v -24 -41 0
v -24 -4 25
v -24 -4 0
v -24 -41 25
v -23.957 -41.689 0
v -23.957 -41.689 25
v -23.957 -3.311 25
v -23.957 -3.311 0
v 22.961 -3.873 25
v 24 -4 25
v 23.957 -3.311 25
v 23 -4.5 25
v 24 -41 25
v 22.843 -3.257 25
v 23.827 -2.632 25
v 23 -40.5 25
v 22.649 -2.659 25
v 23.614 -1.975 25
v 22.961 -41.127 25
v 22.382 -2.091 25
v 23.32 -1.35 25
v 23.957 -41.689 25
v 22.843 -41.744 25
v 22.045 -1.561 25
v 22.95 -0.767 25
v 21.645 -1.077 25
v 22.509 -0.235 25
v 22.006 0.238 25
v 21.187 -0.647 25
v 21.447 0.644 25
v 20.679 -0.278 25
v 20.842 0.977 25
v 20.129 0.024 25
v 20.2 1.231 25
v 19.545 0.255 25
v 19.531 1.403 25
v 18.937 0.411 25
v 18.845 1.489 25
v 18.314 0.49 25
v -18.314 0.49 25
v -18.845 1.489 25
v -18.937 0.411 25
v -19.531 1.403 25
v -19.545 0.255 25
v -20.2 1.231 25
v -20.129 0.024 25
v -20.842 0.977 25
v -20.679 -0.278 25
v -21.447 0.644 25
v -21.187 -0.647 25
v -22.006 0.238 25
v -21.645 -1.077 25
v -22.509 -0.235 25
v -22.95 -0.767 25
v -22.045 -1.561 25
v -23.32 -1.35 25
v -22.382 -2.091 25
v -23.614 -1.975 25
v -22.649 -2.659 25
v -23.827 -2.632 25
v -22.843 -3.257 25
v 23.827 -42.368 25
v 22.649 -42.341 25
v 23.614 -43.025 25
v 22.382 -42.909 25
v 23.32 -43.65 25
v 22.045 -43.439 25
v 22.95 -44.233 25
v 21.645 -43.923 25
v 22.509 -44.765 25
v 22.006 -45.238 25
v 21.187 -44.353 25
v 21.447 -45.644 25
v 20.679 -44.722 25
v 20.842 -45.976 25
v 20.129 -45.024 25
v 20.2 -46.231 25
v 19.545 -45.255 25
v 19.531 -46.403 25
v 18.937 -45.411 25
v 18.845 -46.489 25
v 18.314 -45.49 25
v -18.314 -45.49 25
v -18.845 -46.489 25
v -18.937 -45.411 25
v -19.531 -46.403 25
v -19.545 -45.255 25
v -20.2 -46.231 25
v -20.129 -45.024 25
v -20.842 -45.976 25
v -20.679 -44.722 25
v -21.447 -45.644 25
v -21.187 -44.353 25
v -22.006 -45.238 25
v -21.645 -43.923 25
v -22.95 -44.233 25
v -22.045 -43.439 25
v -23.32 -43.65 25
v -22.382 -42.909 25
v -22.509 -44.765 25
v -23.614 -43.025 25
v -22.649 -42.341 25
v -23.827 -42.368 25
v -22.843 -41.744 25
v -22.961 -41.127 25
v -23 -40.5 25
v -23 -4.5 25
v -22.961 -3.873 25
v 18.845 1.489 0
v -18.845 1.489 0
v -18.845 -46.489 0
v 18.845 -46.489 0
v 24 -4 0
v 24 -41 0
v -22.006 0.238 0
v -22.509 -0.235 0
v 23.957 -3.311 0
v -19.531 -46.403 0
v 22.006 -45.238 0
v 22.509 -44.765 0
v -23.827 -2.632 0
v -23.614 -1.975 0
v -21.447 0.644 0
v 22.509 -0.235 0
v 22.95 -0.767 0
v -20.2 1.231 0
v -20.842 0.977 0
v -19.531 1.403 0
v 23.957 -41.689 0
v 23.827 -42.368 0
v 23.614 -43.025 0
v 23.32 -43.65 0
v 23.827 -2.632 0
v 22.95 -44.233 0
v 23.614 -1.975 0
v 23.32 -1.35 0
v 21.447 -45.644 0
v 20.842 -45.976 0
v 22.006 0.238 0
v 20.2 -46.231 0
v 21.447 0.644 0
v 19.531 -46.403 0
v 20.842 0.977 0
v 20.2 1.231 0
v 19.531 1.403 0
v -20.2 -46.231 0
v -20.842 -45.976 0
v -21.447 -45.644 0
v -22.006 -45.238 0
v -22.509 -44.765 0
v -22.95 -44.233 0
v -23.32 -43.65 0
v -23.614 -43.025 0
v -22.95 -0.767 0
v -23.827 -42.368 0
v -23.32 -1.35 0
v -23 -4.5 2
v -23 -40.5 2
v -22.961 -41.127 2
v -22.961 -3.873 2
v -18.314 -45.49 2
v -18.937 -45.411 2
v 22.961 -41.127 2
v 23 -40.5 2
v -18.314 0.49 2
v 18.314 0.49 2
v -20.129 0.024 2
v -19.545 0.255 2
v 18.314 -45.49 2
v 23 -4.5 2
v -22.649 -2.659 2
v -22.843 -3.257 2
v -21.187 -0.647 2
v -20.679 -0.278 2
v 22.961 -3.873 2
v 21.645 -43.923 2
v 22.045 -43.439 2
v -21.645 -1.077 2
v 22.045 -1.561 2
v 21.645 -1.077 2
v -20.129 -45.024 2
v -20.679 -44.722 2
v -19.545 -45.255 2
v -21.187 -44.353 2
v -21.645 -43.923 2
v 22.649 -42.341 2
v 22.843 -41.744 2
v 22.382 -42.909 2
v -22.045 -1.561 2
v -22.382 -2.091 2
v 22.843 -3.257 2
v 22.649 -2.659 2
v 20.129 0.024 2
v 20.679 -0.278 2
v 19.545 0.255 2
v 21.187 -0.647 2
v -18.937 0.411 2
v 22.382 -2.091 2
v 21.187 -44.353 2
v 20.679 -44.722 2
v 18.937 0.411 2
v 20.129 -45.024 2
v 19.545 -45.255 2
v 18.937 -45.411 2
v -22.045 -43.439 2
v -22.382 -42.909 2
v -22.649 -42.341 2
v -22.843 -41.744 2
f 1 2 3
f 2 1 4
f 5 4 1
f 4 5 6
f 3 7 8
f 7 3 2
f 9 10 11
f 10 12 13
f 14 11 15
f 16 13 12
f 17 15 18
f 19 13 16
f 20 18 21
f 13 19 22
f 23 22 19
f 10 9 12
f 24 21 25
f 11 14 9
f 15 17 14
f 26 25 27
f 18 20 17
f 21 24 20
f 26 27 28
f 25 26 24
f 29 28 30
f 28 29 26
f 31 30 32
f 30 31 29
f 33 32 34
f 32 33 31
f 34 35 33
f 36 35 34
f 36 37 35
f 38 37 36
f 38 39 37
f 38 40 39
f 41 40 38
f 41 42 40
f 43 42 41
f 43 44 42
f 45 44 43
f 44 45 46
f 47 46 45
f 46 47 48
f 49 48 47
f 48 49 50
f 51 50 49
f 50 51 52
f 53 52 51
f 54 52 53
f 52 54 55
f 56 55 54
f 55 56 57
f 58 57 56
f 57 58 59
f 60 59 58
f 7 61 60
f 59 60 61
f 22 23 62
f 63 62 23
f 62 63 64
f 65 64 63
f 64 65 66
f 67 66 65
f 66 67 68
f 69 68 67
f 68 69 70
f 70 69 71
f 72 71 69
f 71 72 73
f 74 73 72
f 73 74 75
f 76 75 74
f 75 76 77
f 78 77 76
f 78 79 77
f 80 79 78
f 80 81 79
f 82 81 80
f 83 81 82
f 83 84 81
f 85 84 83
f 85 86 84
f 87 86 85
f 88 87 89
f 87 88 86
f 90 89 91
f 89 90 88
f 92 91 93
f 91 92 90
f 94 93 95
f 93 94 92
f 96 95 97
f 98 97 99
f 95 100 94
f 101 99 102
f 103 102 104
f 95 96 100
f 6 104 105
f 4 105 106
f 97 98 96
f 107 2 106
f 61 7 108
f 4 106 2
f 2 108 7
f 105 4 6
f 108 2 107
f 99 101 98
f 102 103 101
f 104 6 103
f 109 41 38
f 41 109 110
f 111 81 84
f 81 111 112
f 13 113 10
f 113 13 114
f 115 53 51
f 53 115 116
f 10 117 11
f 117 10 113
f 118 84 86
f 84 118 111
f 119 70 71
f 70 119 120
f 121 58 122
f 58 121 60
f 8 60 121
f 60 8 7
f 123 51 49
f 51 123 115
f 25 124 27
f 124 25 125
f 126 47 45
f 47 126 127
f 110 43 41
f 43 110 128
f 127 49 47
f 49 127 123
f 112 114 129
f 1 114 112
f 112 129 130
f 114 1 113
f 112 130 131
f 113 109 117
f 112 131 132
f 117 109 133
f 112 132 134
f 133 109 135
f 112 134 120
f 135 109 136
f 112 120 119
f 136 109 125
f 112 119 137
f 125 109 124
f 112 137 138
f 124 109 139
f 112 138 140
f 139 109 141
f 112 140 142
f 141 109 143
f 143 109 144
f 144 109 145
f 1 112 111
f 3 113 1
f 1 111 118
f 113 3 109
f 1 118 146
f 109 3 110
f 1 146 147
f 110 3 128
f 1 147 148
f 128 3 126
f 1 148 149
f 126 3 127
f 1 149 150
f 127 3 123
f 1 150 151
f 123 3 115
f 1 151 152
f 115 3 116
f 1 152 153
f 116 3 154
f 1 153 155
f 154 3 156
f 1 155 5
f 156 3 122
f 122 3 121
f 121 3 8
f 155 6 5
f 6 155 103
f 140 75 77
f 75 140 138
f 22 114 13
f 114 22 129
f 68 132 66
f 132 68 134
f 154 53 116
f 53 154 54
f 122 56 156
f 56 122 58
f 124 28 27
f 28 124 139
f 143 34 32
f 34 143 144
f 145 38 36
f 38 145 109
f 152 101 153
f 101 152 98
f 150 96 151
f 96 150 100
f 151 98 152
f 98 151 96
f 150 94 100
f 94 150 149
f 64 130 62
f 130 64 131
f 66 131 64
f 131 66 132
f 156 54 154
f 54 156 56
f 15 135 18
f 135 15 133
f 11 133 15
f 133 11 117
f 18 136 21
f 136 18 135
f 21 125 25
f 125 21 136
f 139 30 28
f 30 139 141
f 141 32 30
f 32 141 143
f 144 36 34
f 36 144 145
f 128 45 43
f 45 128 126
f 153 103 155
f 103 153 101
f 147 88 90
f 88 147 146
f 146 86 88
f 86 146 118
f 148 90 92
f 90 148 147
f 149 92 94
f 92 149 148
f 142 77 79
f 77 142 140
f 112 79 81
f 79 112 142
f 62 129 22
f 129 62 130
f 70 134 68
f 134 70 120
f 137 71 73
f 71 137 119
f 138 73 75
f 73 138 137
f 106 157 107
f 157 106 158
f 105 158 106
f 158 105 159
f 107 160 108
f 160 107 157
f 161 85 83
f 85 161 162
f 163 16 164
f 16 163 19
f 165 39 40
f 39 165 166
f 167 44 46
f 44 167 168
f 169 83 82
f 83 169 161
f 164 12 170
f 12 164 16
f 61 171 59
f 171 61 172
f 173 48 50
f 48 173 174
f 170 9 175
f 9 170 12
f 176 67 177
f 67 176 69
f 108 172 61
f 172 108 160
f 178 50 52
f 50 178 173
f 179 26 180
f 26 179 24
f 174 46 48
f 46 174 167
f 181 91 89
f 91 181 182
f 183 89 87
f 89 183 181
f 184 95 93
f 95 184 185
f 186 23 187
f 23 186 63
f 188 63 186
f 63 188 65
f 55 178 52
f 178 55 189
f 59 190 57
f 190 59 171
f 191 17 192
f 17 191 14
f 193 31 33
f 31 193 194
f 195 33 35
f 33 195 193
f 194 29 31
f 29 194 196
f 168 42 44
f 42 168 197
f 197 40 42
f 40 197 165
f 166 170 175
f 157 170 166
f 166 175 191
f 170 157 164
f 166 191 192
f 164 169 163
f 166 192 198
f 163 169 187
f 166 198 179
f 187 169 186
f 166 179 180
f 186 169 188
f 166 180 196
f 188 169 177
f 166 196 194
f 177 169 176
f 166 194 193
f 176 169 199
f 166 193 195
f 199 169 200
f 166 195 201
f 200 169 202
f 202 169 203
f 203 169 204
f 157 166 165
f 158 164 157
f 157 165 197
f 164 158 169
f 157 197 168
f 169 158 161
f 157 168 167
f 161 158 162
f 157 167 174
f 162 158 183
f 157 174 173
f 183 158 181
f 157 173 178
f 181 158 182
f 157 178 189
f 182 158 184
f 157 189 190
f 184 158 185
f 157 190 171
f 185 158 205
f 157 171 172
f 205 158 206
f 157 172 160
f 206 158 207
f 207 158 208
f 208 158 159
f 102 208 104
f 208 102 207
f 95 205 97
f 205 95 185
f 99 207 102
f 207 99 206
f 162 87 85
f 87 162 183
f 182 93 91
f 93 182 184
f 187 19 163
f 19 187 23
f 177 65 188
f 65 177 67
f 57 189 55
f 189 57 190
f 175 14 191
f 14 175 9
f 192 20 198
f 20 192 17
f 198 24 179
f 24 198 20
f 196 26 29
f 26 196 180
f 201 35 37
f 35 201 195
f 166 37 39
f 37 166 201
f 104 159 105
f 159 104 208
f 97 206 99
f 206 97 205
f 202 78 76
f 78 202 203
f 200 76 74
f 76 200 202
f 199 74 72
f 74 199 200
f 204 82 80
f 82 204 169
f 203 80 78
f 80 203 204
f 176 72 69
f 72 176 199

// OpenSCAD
$fn = 50;


difference() {
	union() {
		translate(v = [0, -22.5000000000, 0]) {
			hull() {
				translate(v = [-18.5000000000, 18.5000000000, 0]) {
					cylinder(h = 25, r = 5.5000000000);
				}
				translate(v = [18.5000000000, 18.5000000000, 0]) {
					cylinder(h = 25, r = 5.5000000000);
				}
				translate(v = [-18.5000000000, -18.5000000000, 0]) {
					cylinder(h = 25, r = 5.5000000000);
				}
				translate(v = [18.5000000000, -18.5000000000, 0]) {
					cylinder(h = 25, r = 5.5000000000);
				}
			}
		}
	}
	union() {
		translate(v = [0, -22.5000000000, 2]) {
			hull() {
				translate(v = [-18.0000000000, 18.0000000000, 0]) {
					cylinder(h = 50, r = 5);
				}
				translate(v = [18.0000000000, 18.0000000000, 0]) {
					cylinder(h = 50, r = 5);
				}
				translate(v = [-18.0000000000, -18.0000000000, 0]) {
					cylinder(h = 50, r = 5);
				}
				translate(v = [18.0000000000, -18.0000000000, 0]) {
					cylinder(h = 50, r = 5);
				}
			}
		}
	}
}
